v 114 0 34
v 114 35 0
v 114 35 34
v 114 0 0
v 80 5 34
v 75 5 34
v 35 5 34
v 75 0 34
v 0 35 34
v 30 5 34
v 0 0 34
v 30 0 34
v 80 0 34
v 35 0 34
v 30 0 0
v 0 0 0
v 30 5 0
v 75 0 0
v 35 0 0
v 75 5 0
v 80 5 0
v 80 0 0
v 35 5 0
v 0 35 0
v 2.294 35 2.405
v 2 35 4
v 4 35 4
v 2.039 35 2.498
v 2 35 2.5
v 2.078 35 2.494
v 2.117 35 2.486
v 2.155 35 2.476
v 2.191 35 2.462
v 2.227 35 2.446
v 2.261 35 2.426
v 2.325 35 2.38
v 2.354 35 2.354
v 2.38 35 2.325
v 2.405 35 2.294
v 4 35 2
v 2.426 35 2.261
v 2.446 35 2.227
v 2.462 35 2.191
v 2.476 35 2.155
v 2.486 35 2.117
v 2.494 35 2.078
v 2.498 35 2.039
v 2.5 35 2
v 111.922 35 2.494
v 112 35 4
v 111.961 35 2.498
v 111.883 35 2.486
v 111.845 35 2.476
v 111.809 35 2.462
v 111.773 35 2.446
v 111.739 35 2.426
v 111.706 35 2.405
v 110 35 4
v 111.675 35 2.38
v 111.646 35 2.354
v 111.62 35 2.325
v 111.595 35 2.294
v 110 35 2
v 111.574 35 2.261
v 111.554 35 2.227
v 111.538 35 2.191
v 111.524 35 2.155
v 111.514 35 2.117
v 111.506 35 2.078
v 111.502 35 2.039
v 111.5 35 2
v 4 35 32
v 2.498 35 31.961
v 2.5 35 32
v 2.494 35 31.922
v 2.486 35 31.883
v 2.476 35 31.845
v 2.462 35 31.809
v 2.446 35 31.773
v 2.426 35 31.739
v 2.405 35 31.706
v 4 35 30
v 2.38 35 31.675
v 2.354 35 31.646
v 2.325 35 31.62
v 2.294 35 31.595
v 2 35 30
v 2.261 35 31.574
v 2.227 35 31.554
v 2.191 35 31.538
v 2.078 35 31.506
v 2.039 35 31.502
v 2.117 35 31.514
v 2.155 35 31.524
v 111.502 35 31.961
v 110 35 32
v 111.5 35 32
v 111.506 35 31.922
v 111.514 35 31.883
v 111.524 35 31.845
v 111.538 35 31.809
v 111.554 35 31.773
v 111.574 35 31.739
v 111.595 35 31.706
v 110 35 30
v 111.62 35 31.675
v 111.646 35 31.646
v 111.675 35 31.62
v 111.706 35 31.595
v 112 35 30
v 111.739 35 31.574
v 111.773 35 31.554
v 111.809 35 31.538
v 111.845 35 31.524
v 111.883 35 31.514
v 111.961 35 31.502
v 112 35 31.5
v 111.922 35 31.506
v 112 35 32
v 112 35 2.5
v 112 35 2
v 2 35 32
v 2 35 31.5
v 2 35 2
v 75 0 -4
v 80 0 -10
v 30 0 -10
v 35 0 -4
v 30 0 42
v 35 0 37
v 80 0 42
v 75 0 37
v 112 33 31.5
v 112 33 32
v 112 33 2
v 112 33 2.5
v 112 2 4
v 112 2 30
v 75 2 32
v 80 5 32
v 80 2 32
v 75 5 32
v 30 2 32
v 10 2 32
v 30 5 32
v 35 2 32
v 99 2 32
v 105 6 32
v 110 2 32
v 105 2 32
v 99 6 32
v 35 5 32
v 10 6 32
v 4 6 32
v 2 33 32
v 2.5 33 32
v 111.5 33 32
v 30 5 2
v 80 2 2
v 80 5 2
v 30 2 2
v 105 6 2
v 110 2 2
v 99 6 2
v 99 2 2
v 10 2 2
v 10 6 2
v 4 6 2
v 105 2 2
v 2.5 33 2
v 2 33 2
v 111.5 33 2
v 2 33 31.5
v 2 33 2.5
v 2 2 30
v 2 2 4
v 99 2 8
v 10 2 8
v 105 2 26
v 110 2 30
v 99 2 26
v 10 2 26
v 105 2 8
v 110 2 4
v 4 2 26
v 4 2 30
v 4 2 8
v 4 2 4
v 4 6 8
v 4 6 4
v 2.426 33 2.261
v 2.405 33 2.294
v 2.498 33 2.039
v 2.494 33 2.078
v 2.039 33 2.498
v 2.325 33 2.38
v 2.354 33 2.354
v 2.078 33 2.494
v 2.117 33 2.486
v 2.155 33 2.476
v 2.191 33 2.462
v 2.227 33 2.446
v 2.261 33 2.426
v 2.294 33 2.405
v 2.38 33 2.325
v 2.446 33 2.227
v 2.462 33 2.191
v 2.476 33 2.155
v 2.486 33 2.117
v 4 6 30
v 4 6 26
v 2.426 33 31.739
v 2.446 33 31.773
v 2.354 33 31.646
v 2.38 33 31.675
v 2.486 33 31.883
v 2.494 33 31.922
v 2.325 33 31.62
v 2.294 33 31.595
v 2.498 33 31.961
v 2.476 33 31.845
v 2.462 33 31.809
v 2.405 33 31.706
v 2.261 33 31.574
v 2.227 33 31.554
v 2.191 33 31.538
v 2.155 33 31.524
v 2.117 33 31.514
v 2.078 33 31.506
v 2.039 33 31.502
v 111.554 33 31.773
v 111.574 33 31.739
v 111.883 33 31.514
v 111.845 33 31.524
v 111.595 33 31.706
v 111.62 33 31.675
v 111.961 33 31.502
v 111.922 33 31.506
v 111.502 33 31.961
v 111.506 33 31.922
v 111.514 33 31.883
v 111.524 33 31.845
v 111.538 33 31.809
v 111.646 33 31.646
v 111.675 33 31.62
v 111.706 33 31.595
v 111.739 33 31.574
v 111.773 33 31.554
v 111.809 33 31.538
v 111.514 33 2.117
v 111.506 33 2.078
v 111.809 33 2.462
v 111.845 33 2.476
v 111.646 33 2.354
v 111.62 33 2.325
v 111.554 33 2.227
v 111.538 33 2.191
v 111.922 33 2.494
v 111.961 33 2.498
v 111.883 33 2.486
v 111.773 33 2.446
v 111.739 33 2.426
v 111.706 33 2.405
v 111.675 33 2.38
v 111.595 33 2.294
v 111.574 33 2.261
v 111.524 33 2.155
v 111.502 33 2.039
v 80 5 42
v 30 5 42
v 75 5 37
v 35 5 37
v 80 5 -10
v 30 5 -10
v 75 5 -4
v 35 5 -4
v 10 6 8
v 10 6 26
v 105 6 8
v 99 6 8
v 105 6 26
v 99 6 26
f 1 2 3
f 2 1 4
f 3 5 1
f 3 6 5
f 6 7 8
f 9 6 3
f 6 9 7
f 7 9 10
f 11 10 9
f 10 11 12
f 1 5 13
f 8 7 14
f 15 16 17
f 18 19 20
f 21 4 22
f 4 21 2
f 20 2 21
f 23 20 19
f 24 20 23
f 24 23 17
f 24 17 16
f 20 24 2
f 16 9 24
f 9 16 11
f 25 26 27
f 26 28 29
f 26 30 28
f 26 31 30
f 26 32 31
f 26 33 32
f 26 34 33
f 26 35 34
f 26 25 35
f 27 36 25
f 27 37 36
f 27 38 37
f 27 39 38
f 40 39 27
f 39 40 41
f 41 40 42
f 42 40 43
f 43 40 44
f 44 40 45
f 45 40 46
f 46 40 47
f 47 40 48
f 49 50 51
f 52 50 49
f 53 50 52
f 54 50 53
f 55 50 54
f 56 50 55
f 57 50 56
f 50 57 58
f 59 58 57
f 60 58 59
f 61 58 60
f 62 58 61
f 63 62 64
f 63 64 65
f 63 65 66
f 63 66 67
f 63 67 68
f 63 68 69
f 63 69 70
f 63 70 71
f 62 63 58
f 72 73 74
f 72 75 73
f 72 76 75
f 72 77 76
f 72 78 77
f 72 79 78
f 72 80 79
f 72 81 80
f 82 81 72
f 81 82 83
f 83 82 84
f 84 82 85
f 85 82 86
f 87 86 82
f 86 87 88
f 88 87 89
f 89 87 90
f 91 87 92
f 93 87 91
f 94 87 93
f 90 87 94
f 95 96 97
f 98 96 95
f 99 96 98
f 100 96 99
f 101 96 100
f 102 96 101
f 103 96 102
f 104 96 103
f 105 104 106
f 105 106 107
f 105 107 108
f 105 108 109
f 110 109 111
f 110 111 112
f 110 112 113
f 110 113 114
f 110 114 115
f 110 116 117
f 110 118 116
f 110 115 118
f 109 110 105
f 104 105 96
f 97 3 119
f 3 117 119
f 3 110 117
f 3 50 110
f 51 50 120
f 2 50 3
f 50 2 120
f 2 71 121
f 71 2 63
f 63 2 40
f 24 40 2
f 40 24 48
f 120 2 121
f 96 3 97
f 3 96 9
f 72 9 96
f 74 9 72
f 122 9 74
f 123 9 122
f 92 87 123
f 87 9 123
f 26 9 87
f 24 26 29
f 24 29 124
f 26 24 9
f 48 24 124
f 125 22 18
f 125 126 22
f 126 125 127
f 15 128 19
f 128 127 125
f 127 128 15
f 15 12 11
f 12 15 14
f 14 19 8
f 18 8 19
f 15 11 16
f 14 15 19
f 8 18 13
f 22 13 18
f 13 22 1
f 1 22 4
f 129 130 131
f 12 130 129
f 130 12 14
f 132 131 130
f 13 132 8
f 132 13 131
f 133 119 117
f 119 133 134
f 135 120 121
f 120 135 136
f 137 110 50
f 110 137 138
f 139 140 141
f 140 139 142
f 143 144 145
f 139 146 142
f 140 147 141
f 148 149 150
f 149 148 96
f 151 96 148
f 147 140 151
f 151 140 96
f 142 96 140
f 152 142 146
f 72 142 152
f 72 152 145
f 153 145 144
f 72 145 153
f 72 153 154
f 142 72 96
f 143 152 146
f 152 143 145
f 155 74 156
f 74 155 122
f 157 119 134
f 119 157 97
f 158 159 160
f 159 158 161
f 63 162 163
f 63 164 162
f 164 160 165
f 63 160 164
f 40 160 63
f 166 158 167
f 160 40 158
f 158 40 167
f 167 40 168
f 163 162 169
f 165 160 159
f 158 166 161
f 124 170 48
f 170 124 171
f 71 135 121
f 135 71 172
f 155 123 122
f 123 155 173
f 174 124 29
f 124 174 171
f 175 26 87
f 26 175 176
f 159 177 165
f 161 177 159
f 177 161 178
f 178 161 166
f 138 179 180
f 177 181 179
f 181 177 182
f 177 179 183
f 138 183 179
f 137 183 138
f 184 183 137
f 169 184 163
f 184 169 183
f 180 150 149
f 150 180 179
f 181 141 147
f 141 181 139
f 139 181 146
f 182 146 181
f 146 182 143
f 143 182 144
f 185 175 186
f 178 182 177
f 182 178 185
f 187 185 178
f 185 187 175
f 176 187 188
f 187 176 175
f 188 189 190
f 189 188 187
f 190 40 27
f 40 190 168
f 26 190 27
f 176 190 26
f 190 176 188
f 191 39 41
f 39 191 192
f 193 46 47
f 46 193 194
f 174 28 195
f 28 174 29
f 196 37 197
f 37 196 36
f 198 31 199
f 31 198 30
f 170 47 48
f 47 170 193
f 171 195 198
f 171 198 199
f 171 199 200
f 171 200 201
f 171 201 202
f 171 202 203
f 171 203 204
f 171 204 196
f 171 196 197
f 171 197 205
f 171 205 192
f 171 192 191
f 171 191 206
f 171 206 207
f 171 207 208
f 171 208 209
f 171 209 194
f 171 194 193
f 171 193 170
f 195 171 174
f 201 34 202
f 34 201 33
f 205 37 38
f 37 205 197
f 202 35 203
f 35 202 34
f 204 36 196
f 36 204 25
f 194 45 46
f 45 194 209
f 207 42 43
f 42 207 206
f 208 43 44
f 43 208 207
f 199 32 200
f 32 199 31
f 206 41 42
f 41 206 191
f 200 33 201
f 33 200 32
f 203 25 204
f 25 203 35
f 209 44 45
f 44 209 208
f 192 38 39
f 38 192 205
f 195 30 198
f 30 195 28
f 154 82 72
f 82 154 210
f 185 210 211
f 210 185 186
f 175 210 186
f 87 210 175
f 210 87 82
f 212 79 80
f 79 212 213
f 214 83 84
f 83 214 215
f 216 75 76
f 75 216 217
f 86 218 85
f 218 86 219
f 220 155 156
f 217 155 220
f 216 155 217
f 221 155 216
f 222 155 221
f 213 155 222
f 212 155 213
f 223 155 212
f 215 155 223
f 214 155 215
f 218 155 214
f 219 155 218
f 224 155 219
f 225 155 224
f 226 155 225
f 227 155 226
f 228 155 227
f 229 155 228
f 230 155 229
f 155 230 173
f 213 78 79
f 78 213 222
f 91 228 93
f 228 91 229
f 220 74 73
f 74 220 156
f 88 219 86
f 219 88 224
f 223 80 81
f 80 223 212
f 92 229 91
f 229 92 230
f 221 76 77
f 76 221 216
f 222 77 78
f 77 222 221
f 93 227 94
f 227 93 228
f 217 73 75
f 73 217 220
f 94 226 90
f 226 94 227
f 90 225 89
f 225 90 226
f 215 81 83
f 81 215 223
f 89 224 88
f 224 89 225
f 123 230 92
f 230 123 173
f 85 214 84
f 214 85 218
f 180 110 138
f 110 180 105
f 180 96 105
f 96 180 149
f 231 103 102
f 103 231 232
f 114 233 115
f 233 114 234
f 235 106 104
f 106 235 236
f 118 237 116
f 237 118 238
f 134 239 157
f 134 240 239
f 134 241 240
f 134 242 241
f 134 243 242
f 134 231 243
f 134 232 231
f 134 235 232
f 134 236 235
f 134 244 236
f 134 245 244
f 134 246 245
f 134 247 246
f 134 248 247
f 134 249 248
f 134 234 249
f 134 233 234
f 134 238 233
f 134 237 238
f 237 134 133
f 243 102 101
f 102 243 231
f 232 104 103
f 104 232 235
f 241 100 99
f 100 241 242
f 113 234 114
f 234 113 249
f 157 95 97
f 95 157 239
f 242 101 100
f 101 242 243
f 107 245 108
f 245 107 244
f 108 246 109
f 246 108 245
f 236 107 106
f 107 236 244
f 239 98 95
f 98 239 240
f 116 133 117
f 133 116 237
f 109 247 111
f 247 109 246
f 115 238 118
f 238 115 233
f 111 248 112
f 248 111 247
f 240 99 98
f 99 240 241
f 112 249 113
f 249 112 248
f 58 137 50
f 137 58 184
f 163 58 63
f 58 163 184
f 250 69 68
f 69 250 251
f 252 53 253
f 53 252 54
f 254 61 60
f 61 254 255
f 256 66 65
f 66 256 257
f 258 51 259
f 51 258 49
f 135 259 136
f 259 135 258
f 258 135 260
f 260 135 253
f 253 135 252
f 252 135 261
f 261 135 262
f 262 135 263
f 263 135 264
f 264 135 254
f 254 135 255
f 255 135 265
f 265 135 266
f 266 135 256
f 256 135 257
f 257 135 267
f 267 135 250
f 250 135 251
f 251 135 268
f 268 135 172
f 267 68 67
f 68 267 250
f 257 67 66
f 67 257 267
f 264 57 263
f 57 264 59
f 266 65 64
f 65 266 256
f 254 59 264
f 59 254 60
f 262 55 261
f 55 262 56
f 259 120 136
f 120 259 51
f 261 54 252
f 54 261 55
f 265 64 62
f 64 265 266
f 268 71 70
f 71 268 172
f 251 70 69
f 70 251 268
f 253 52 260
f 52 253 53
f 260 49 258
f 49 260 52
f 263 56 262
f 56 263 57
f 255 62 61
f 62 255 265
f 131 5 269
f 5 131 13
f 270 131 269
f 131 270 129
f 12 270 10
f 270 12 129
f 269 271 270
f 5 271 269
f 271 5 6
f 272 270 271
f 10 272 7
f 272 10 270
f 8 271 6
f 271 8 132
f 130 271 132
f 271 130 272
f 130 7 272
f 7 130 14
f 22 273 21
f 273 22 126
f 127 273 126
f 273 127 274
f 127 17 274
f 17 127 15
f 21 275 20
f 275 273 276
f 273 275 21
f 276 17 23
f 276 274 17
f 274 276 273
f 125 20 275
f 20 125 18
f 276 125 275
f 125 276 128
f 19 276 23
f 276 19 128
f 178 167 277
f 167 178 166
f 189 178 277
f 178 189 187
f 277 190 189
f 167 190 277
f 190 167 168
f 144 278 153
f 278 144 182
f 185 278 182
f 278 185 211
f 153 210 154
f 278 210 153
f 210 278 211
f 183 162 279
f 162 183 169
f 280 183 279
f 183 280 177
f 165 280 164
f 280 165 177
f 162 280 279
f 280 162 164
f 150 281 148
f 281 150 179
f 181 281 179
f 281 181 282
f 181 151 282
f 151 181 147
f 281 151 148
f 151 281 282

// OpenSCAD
// main box
difference() {
cube([114,35,34]);
translate([2,2,2])
cube([110,37,30]); 
}

//corners
module corner_pillar() {
    difference() {
        cube([4,35,4]);
        translate([2,36,2])
        rotate([90,0,0])
            cylinder(3,0.5,0.5, $fn=80);
    }
}
corner_pillar();

translate([0,0,30])
    corner_pillar();

translate([110,0,30])
    corner_pillar();

translate([110,0,0])
    corner_pillar();



// battery mounts
translate([4,2,2])
    cube([6,4,6]);

translate([4,2,26])
    cube([6,4,6]);

translate([99,2,2])
    cube([6,4,6]);

translate([99,2,26])
    cube([6,4,6]);


// strap brackets
translate([30,0,32])
    difference() {
        cube([50,5,10]);
        translate([5,-1,0])
            cube([40,11,5]);  
}

translate([30,0,-10])
    difference() {
        cube([50,5,12]);
        translate([5,-1,6])
            cube([40,11,5]);  
}
